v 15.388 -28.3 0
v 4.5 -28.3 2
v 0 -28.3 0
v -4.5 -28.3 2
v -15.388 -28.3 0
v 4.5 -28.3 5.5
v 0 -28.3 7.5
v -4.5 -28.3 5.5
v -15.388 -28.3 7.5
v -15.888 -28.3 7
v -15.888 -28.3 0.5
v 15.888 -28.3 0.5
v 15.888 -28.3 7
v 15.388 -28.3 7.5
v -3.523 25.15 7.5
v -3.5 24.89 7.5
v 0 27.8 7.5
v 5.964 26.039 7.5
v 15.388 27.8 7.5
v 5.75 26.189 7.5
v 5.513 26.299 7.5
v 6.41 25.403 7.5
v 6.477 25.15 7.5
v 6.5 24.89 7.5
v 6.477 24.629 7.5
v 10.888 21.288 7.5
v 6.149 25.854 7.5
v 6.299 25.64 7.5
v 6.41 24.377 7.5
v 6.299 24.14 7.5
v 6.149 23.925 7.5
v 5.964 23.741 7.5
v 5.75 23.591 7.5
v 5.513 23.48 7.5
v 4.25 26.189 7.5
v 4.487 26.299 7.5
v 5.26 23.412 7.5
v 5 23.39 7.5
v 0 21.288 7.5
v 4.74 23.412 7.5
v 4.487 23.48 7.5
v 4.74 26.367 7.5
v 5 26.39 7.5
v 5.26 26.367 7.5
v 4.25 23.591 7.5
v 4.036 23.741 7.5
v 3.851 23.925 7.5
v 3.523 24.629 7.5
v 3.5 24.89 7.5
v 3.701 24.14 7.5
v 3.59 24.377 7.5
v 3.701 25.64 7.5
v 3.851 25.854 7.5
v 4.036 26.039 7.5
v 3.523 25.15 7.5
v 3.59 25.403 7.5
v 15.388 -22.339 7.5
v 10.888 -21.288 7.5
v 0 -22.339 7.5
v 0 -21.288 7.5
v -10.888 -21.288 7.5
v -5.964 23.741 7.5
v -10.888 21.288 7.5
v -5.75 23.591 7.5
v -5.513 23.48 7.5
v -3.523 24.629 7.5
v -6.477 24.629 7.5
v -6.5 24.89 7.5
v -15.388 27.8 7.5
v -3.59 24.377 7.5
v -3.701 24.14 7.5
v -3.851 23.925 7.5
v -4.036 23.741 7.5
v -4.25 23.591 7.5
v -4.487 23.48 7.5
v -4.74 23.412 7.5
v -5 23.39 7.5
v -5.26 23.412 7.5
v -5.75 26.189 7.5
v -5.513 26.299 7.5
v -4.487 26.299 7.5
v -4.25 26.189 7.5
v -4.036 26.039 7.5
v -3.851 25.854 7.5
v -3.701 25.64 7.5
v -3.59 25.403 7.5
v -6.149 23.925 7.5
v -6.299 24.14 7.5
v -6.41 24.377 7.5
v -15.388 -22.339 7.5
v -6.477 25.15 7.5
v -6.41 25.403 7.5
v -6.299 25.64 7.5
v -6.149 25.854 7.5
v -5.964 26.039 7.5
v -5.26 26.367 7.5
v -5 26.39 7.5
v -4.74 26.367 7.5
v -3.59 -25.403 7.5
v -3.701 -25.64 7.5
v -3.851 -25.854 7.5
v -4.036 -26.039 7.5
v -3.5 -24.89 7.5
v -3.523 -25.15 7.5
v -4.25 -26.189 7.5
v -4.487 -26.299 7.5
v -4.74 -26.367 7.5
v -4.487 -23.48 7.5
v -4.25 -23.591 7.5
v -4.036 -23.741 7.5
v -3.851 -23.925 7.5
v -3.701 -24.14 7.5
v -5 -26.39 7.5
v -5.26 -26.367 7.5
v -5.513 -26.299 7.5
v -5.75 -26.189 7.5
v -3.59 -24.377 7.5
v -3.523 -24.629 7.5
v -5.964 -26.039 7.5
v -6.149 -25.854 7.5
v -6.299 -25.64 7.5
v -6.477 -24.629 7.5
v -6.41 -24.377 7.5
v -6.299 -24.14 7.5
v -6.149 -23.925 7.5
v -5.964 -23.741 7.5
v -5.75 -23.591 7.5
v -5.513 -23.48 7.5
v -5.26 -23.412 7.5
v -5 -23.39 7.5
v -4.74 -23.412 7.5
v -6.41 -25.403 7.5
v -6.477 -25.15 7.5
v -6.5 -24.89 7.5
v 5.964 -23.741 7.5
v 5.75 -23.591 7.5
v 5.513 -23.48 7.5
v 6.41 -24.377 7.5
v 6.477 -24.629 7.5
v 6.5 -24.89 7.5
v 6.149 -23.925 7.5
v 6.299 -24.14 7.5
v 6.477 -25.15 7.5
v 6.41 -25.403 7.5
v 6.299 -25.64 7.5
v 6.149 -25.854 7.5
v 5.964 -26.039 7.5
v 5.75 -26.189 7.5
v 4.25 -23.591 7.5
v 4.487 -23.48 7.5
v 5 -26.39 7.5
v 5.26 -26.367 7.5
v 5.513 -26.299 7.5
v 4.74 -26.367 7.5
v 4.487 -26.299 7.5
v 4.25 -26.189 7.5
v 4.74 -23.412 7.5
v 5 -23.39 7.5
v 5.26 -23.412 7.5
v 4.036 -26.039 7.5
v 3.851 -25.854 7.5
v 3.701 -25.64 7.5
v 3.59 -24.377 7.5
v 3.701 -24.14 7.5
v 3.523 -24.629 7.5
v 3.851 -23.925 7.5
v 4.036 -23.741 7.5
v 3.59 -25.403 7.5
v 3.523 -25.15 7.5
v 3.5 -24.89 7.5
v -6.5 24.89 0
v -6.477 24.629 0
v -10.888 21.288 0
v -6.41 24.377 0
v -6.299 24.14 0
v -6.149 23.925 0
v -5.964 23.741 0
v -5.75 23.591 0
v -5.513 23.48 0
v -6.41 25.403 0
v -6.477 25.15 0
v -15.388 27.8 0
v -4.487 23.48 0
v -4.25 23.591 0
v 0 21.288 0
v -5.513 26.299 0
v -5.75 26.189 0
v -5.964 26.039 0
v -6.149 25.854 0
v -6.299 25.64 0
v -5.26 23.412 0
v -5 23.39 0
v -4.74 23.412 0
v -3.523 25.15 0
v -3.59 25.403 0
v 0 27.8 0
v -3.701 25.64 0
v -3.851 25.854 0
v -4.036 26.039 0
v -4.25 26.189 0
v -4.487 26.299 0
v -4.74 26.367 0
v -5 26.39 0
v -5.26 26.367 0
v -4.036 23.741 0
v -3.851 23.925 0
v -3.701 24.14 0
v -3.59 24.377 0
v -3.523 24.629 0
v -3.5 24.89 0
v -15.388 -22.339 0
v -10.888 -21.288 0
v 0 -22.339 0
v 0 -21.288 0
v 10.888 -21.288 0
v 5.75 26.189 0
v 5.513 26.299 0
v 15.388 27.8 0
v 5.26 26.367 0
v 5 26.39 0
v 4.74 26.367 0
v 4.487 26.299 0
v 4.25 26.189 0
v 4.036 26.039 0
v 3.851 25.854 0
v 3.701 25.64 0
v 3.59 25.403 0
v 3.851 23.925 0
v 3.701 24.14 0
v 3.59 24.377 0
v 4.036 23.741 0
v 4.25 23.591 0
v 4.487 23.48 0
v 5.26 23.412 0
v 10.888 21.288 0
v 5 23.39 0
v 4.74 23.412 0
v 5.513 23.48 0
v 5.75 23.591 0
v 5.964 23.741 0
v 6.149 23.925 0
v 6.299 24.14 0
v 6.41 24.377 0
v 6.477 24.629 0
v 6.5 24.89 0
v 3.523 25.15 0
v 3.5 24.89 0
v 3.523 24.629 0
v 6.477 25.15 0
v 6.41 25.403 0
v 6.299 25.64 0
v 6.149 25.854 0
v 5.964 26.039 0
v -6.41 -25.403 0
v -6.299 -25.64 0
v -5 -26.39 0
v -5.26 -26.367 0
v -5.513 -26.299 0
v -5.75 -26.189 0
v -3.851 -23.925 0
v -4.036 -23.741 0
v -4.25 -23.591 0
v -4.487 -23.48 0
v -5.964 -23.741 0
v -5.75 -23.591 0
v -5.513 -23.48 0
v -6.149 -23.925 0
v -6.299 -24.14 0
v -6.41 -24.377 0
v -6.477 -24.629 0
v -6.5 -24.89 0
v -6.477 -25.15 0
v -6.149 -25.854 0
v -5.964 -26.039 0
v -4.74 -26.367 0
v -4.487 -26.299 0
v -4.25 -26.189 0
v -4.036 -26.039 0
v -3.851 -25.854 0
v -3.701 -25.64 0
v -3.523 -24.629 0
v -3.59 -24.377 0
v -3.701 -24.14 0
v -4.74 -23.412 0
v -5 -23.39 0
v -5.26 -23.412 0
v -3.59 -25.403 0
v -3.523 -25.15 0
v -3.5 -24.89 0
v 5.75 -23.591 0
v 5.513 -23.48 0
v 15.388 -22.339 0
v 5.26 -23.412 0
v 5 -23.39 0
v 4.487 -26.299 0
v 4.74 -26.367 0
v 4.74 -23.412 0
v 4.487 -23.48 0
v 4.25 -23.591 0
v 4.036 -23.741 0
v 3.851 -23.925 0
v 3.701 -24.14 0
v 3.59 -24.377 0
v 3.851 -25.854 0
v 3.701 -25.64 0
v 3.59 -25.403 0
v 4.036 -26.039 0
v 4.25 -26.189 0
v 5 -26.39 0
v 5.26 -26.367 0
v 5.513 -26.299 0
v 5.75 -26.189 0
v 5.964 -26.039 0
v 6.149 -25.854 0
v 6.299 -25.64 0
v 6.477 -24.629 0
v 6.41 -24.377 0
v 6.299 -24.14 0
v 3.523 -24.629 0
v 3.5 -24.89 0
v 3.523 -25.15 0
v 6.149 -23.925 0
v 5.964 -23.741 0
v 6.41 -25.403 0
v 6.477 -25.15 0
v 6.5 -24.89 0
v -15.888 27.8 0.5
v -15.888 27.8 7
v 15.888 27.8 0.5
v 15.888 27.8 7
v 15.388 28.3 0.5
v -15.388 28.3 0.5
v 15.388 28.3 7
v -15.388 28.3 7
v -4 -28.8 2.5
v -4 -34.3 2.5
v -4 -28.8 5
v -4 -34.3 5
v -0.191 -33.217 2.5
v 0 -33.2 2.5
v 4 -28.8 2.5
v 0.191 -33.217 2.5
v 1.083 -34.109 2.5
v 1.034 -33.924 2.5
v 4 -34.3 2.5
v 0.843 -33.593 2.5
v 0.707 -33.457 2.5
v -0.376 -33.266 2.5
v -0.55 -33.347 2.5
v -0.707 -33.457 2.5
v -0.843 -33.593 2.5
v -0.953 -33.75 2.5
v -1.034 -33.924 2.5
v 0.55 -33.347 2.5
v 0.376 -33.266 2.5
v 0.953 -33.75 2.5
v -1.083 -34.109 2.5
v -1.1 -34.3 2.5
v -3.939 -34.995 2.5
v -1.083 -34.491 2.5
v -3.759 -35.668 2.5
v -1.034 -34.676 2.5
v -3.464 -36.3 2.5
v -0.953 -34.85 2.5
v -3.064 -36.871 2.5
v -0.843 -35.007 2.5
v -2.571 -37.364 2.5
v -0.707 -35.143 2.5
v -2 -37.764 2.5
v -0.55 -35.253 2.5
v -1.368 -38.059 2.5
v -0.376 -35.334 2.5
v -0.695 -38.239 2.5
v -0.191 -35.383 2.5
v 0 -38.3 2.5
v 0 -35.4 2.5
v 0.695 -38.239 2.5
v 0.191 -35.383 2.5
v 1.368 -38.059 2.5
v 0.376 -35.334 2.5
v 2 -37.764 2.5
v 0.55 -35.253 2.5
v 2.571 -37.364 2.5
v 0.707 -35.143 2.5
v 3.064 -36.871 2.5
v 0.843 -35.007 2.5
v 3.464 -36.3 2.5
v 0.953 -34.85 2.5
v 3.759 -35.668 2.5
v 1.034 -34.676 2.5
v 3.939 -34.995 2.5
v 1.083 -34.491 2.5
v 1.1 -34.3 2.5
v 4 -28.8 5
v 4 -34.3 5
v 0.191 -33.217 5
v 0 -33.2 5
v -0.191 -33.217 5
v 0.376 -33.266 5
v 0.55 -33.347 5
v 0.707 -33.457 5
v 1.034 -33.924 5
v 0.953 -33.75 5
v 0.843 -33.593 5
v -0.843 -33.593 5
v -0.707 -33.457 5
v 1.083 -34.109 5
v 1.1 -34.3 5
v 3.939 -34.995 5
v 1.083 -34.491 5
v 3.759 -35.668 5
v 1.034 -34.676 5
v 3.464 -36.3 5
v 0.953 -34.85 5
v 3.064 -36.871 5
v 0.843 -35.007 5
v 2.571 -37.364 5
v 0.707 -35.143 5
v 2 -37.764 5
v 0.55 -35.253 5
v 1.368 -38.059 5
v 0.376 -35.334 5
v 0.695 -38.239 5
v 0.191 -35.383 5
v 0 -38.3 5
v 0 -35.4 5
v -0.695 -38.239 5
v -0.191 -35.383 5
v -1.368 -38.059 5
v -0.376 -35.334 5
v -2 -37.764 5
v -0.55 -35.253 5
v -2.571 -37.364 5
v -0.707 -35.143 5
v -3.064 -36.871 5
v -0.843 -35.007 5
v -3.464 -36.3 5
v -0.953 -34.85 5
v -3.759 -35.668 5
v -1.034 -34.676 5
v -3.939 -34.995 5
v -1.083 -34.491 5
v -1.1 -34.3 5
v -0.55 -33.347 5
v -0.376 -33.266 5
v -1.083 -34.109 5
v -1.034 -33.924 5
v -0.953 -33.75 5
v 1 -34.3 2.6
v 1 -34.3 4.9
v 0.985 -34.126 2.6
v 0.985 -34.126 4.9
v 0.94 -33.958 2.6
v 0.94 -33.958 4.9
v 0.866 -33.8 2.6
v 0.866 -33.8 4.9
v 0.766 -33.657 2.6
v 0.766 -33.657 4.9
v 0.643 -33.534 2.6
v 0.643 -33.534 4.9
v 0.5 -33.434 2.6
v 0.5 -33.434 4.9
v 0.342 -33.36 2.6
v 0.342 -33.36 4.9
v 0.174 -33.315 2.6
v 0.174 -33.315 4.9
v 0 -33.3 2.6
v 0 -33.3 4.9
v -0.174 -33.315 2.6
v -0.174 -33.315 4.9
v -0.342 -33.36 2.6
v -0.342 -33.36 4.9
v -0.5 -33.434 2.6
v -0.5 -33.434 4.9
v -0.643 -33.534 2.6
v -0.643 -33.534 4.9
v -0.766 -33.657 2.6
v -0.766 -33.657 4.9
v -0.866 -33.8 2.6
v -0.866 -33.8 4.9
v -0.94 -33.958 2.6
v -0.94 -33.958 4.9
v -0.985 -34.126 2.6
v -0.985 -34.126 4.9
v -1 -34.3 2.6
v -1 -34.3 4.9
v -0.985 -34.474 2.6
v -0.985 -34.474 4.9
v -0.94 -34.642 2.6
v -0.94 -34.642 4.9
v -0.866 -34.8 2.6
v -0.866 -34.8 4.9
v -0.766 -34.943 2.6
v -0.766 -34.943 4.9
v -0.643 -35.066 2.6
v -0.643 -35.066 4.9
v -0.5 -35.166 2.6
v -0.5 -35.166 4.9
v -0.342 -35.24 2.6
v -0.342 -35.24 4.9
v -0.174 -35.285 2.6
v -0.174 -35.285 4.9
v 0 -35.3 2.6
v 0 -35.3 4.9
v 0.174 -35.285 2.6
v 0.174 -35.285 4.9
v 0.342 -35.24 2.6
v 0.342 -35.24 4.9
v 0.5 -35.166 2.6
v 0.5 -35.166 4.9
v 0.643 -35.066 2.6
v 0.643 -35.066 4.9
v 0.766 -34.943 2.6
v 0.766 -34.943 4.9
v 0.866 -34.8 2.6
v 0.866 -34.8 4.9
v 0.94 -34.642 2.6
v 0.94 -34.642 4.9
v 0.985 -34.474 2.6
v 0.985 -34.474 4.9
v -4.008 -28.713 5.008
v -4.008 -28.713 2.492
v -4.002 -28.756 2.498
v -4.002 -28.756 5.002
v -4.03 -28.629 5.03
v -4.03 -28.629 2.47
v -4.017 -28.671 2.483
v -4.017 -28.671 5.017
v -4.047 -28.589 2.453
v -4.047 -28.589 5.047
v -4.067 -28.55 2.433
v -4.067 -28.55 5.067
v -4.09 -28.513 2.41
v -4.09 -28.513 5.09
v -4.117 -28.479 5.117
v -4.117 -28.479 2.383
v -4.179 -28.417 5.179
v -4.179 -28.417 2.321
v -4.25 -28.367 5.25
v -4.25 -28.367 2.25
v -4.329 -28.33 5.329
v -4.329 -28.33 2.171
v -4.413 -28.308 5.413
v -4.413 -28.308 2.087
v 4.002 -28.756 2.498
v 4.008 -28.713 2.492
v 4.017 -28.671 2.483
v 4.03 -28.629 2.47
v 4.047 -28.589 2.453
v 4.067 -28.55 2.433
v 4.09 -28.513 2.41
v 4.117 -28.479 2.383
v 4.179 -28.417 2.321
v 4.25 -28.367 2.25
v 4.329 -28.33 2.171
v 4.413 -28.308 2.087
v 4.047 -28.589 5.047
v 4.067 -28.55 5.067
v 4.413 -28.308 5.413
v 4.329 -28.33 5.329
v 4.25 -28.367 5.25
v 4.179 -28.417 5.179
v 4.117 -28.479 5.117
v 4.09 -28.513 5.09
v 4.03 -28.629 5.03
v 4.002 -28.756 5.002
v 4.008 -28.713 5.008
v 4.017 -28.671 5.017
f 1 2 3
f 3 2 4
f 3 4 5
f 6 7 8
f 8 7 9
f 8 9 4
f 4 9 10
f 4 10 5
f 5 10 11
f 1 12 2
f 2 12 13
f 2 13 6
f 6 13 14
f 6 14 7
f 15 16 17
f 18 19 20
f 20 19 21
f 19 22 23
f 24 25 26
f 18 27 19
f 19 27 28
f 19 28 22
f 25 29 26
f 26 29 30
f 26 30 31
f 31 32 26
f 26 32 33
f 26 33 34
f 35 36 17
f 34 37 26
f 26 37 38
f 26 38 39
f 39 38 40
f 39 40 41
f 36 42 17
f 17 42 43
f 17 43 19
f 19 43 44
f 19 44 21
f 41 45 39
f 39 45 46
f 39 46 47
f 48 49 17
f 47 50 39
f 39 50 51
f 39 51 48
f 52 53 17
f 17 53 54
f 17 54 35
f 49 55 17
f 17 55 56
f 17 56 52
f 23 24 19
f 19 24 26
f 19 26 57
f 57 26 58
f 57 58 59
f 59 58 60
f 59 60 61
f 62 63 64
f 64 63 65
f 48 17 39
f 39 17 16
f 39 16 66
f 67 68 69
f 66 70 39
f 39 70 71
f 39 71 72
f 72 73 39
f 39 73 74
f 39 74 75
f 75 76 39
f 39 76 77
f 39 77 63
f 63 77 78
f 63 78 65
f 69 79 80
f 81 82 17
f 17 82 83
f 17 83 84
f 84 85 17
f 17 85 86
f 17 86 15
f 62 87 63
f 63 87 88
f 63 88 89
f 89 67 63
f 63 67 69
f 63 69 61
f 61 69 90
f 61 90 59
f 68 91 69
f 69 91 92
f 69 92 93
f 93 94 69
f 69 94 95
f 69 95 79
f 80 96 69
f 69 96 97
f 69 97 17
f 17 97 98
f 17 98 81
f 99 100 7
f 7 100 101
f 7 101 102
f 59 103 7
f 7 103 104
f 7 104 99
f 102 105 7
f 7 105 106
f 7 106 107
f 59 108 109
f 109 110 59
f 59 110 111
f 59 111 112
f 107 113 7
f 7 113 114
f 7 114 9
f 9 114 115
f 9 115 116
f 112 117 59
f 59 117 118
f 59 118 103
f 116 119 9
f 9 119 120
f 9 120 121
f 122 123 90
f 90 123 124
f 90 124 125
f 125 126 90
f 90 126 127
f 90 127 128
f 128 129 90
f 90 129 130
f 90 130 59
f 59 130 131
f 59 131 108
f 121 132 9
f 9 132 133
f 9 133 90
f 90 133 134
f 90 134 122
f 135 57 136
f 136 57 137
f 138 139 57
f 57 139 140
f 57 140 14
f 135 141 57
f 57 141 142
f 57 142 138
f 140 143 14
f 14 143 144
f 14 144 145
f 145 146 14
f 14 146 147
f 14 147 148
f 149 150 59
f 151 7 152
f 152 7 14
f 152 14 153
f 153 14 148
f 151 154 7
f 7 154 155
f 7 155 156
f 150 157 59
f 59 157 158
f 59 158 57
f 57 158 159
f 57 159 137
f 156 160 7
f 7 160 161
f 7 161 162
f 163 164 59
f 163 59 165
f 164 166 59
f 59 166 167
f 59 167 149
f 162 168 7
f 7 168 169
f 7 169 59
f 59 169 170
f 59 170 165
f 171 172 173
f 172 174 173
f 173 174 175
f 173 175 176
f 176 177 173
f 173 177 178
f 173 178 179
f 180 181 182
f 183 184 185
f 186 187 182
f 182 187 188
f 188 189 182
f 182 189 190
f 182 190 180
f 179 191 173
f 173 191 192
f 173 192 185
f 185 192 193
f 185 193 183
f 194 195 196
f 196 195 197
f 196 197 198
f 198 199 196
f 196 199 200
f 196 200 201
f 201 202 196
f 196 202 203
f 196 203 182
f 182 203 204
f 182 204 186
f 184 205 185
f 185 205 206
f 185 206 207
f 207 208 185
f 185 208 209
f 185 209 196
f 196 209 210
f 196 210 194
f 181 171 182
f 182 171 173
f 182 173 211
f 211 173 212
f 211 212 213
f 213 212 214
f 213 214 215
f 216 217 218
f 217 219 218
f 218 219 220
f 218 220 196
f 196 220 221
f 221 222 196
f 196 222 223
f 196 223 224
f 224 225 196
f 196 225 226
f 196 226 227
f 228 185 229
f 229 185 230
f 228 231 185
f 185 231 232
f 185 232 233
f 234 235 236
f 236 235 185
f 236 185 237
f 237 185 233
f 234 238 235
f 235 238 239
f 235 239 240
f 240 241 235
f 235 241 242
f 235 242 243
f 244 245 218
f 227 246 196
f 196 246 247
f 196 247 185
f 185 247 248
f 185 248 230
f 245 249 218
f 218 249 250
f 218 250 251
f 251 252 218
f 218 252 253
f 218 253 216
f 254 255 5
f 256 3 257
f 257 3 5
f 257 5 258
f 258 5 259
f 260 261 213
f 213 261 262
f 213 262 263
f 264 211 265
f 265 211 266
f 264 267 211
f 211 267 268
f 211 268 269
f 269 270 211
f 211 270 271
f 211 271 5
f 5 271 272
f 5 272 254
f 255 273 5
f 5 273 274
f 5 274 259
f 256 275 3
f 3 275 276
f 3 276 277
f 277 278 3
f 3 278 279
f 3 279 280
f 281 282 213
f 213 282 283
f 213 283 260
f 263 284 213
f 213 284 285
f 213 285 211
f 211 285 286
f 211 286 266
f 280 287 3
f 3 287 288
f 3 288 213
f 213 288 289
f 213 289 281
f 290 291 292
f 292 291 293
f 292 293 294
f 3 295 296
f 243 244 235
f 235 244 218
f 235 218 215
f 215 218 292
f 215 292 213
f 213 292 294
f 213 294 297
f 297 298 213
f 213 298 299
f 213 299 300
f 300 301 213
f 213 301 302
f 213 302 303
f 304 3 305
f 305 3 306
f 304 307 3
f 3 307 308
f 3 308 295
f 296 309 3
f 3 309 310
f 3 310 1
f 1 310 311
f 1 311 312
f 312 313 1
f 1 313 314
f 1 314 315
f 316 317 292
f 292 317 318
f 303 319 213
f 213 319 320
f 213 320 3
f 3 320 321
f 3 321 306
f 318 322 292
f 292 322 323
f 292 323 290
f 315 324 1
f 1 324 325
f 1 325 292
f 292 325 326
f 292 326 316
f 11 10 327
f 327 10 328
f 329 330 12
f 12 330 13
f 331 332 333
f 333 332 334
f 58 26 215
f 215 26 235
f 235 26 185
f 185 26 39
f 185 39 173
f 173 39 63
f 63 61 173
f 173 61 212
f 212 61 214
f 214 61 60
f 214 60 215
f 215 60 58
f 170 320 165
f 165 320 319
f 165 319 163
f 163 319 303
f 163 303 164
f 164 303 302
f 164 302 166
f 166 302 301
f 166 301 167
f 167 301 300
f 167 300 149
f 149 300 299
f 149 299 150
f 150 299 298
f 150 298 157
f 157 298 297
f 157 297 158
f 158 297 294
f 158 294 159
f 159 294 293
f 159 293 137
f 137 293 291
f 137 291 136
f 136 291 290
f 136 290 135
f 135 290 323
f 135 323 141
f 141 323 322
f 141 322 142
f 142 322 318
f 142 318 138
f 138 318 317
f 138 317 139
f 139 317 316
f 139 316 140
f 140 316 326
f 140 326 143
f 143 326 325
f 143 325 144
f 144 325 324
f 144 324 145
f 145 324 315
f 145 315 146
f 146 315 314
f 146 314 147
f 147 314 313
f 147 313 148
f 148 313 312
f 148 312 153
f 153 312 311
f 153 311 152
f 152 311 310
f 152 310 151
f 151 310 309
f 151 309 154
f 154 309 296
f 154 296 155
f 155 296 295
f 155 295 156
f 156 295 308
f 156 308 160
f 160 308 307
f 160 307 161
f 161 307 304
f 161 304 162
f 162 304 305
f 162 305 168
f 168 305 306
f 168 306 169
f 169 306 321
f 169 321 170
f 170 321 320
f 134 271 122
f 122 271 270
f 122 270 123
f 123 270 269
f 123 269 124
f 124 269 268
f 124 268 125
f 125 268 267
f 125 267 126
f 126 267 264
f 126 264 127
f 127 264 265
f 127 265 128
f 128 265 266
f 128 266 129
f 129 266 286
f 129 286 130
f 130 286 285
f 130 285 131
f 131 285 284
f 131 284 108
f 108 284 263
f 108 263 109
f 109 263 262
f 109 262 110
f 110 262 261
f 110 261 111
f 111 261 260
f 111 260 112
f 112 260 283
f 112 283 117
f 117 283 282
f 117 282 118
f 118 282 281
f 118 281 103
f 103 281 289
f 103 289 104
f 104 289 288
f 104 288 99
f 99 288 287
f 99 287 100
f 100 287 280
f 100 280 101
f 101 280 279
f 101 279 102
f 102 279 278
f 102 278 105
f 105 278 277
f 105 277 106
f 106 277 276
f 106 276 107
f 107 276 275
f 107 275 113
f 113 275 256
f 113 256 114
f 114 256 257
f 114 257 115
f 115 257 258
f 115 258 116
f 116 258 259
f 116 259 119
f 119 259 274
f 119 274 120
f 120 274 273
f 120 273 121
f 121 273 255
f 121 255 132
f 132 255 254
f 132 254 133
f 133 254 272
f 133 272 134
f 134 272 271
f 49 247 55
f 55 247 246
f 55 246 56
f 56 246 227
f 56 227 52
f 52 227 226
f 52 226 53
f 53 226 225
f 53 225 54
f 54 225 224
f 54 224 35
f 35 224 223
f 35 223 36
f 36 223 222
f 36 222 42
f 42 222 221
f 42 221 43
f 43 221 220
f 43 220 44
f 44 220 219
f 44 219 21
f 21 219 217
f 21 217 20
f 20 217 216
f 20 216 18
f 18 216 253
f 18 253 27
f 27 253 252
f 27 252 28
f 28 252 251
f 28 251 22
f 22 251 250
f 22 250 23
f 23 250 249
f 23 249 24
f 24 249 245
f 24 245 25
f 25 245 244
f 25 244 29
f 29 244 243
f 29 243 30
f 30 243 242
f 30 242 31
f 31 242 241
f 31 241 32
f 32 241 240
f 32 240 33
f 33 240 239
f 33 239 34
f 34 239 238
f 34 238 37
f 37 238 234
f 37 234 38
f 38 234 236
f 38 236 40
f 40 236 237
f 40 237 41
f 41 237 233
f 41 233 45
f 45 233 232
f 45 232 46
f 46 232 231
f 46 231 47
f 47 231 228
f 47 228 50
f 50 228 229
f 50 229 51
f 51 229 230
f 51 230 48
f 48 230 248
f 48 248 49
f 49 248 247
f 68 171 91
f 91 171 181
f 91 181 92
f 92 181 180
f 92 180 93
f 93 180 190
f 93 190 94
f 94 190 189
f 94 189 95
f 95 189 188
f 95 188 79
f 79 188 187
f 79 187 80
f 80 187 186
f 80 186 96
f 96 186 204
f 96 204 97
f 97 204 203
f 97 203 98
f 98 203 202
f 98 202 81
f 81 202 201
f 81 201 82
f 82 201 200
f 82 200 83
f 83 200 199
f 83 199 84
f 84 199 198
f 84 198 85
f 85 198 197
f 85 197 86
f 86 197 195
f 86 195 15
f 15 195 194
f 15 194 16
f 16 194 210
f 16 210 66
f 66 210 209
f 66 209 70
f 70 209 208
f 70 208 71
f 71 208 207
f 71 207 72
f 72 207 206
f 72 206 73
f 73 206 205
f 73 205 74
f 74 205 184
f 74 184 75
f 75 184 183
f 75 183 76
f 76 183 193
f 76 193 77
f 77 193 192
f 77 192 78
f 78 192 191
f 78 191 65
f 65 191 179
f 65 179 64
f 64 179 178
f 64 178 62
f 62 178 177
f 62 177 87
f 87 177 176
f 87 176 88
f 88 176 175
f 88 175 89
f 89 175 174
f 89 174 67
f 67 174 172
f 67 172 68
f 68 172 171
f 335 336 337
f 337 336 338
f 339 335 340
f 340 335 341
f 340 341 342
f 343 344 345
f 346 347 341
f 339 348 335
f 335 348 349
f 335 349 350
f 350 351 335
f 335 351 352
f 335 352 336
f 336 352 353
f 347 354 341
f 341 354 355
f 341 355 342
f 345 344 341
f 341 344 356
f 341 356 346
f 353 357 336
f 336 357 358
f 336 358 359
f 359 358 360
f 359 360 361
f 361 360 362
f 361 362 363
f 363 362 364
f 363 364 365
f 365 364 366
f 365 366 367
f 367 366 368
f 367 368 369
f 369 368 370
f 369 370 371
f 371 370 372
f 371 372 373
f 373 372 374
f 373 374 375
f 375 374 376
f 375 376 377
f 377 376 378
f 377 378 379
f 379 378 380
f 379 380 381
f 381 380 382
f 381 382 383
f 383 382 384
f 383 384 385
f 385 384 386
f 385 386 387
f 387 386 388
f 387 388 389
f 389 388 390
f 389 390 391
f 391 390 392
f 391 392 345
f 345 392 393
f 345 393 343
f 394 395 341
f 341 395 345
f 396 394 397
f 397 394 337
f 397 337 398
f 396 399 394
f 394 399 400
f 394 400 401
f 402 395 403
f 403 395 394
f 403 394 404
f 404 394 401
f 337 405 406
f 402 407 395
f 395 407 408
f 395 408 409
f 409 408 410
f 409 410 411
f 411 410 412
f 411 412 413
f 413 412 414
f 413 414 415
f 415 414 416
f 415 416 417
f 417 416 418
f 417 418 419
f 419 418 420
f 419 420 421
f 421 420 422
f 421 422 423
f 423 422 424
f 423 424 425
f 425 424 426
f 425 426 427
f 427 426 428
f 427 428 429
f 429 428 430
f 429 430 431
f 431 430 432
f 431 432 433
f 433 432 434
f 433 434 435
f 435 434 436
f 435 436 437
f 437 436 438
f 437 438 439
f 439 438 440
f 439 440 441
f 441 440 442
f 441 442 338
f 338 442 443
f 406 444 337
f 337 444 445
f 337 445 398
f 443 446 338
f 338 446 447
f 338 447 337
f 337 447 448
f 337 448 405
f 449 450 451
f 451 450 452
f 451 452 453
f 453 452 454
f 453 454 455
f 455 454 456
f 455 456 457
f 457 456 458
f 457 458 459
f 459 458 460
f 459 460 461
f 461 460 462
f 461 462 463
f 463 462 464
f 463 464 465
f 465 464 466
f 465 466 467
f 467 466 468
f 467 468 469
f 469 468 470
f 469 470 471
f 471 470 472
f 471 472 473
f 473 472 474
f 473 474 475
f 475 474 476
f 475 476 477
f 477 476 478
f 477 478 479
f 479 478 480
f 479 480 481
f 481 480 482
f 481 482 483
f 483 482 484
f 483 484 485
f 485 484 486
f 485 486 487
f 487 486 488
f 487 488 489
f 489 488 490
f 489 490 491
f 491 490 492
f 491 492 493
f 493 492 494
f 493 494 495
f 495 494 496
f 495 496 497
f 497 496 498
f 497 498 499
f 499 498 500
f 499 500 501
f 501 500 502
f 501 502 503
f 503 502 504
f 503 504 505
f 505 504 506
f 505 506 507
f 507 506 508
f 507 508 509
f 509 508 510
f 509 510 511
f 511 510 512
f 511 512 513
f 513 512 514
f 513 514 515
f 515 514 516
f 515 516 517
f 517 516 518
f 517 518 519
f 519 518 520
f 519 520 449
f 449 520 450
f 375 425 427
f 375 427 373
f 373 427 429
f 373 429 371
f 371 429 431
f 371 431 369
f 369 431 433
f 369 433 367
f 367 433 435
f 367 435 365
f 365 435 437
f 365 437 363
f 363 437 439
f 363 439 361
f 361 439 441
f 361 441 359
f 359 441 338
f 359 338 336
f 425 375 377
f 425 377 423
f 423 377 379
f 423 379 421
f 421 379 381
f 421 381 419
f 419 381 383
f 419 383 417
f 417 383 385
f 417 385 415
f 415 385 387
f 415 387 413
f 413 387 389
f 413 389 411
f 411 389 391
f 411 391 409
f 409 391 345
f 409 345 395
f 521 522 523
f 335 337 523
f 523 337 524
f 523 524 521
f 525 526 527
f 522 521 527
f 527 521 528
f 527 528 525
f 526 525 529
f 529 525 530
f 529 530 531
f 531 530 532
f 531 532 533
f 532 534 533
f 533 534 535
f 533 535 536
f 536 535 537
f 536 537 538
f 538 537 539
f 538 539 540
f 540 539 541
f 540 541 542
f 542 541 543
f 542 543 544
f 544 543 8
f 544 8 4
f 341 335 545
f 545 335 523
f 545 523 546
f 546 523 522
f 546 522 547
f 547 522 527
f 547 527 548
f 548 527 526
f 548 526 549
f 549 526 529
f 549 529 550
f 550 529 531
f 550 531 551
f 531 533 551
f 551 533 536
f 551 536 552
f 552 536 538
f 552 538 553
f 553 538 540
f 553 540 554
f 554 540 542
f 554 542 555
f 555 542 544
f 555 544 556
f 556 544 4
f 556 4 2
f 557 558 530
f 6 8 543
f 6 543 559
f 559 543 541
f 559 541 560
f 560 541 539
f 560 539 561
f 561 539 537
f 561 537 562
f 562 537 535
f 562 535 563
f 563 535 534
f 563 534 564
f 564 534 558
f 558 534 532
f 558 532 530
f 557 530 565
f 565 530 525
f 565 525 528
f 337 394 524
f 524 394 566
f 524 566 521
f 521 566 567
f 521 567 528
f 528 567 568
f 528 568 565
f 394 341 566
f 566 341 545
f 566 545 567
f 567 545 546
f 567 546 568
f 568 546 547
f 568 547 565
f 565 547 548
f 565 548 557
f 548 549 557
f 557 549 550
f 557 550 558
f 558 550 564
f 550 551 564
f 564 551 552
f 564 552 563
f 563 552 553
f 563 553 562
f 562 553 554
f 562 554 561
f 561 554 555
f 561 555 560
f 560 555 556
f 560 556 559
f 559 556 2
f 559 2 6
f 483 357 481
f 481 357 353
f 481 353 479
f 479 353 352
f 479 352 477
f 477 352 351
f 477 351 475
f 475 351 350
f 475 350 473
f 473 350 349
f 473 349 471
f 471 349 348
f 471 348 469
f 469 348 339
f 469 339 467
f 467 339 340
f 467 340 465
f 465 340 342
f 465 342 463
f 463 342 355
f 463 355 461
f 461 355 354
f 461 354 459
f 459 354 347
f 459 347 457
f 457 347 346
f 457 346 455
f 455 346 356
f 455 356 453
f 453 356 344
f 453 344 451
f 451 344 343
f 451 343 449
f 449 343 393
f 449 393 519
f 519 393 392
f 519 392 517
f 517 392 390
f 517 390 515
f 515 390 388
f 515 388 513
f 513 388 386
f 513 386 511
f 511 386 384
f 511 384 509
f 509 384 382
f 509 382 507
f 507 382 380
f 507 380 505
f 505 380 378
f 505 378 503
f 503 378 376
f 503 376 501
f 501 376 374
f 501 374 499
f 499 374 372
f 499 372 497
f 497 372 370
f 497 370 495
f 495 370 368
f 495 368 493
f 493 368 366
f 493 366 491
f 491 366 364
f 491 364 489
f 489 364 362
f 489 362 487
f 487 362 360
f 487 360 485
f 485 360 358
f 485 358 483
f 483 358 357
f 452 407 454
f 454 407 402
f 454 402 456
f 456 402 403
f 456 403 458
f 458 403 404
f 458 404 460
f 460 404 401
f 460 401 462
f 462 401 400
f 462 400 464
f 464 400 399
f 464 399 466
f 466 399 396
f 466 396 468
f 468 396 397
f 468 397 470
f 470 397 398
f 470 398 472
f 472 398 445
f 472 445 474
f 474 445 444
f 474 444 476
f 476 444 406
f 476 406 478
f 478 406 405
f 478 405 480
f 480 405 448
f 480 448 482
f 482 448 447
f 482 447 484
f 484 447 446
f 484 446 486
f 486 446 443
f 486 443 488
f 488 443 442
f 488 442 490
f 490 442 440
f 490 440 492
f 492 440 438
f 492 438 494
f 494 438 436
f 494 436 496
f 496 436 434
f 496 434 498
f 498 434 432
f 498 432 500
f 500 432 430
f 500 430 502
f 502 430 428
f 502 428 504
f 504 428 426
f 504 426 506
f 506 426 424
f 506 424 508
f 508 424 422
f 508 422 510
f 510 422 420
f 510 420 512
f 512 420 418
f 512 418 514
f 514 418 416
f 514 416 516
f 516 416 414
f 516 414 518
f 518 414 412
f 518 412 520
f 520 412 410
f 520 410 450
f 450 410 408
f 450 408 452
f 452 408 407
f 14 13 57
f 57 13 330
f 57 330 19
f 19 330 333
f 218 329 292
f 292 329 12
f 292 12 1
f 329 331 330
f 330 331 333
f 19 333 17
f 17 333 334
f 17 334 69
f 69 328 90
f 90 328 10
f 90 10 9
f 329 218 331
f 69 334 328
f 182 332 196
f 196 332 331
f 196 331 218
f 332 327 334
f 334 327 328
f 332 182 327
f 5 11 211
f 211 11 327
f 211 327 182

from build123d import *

# Parameters (mm, degrees)
SKETCH2_W           = 31.775877048
SKETCH2_H           = 56.6
SKETCH2_R           = 1.5
SKETCH2_W_2         = 21.775877048
SKETCH2_H_2         = 42.575877048
BOSS_EXTRUDE1_DEPTH = 7.5
SKETCH3_W           = 8
SKETCH3_H           = 2.5
BOSS_EXTRUDE2_DEPTH = 10
SKETCH4_R           = 1
CUT_EXTRUDE1_DEPTH  = 42.765016348
FILLET1_R           = 4
FILLET3_R           = 0.5
CHAMFER1_SIZE       = 0.1
CHAMFER2_SIZE       = 0.5


with BuildPart() as part:
    # Sketch2 → Boss-Extrude1 (new body)
    with BuildSketch(Plane.XY):
        Rectangle(SKETCH2_W, SKETCH2_H)
        with Locations((5, -24.889613301)):
            Circle(SKETCH2_R, mode=Mode.SUBTRACT)
        with Locations((-5, -24.889613301)):
            Circle(SKETCH2_R, mode=Mode.SUBTRACT)
        with Locations((5, 24.889613301)):
            Circle(SKETCH2_R, mode=Mode.SUBTRACT)
        with Locations((-5, 24.889613301)):
            Circle(SKETCH2_R, mode=Mode.SUBTRACT)
        Rectangle(SKETCH2_W_2, SKETCH2_H_2, mode=Mode.SUBTRACT)
    extrude(amount=BOSS_EXTRUDE1_DEPTH)

    # Sketch3 → Boss-Extrude2 (add)
    with BuildSketch(Plane.XZ.offset(28.3)):
        with Locations((0, 3.75)):
            Rectangle(SKETCH3_W, SKETCH3_H)
    extrude(amount=BOSS_EXTRUDE2_DEPTH)

    # Sketch4 → Cut-Extrude1 (cut, through all)
    with BuildSketch(Plane.XY.offset(5)):
        with Locations((0, -34.3)):
            Circle(SKETCH4_R)
    extrude(amount=-CUT_EXTRUDE1_DEPTH, mode=Mode.SUBTRACT)

    # Fillet1
    fillet1_edges = [part.edges().sort_by_distance(p)[0] for p in [
        (4, -38.3, 3.75),
        (-4, -38.3, 3.75),
    ]]
    fillet(fillet1_edges, radius=FILLET1_R - 0.0001)  # a hair under: the kernel refuses the full size

    # Fillet3
    fillet3_edges = [part.edges().sort_by_distance(p)[0] for p in [
        (-4, -28.3, 3.75),
        (0, -28.3, 2.5),
        (4, -28.3, 3.75),
        (0, -28.3, 5),
    ]]
    fillet(fillet3_edges, radius=FILLET3_R)

    # Chamfer1
    chamfer1_edges = [part.edges().sort_by_distance(p)[0] for p in [
        (-1, -34.3, 2.5),
        (-1, -34.3, 5),
    ]]
    chamfer(chamfer1_edges, length=CHAMFER1_SIZE)

    # Chamfer2
    chamfer2_edges = [part.edges().sort_by_distance(p)[0] for p in [
        (15.887938524, 0, 7.5),
        (0, 28.3, 7.5),
        (-15.887938524, 0, 7.5),
        (0, 28.3, 0),
        (15.887938524, 0, 0),
        (-15.887938524, 0, 0),
        (-15.887938524, 28.3, 3.75),
        (15.887938524, 28.3, 3.75),
    ]]
    chamfer(chamfer2_edges, length=CHAMFER2_SIZE)


solid = part.part
